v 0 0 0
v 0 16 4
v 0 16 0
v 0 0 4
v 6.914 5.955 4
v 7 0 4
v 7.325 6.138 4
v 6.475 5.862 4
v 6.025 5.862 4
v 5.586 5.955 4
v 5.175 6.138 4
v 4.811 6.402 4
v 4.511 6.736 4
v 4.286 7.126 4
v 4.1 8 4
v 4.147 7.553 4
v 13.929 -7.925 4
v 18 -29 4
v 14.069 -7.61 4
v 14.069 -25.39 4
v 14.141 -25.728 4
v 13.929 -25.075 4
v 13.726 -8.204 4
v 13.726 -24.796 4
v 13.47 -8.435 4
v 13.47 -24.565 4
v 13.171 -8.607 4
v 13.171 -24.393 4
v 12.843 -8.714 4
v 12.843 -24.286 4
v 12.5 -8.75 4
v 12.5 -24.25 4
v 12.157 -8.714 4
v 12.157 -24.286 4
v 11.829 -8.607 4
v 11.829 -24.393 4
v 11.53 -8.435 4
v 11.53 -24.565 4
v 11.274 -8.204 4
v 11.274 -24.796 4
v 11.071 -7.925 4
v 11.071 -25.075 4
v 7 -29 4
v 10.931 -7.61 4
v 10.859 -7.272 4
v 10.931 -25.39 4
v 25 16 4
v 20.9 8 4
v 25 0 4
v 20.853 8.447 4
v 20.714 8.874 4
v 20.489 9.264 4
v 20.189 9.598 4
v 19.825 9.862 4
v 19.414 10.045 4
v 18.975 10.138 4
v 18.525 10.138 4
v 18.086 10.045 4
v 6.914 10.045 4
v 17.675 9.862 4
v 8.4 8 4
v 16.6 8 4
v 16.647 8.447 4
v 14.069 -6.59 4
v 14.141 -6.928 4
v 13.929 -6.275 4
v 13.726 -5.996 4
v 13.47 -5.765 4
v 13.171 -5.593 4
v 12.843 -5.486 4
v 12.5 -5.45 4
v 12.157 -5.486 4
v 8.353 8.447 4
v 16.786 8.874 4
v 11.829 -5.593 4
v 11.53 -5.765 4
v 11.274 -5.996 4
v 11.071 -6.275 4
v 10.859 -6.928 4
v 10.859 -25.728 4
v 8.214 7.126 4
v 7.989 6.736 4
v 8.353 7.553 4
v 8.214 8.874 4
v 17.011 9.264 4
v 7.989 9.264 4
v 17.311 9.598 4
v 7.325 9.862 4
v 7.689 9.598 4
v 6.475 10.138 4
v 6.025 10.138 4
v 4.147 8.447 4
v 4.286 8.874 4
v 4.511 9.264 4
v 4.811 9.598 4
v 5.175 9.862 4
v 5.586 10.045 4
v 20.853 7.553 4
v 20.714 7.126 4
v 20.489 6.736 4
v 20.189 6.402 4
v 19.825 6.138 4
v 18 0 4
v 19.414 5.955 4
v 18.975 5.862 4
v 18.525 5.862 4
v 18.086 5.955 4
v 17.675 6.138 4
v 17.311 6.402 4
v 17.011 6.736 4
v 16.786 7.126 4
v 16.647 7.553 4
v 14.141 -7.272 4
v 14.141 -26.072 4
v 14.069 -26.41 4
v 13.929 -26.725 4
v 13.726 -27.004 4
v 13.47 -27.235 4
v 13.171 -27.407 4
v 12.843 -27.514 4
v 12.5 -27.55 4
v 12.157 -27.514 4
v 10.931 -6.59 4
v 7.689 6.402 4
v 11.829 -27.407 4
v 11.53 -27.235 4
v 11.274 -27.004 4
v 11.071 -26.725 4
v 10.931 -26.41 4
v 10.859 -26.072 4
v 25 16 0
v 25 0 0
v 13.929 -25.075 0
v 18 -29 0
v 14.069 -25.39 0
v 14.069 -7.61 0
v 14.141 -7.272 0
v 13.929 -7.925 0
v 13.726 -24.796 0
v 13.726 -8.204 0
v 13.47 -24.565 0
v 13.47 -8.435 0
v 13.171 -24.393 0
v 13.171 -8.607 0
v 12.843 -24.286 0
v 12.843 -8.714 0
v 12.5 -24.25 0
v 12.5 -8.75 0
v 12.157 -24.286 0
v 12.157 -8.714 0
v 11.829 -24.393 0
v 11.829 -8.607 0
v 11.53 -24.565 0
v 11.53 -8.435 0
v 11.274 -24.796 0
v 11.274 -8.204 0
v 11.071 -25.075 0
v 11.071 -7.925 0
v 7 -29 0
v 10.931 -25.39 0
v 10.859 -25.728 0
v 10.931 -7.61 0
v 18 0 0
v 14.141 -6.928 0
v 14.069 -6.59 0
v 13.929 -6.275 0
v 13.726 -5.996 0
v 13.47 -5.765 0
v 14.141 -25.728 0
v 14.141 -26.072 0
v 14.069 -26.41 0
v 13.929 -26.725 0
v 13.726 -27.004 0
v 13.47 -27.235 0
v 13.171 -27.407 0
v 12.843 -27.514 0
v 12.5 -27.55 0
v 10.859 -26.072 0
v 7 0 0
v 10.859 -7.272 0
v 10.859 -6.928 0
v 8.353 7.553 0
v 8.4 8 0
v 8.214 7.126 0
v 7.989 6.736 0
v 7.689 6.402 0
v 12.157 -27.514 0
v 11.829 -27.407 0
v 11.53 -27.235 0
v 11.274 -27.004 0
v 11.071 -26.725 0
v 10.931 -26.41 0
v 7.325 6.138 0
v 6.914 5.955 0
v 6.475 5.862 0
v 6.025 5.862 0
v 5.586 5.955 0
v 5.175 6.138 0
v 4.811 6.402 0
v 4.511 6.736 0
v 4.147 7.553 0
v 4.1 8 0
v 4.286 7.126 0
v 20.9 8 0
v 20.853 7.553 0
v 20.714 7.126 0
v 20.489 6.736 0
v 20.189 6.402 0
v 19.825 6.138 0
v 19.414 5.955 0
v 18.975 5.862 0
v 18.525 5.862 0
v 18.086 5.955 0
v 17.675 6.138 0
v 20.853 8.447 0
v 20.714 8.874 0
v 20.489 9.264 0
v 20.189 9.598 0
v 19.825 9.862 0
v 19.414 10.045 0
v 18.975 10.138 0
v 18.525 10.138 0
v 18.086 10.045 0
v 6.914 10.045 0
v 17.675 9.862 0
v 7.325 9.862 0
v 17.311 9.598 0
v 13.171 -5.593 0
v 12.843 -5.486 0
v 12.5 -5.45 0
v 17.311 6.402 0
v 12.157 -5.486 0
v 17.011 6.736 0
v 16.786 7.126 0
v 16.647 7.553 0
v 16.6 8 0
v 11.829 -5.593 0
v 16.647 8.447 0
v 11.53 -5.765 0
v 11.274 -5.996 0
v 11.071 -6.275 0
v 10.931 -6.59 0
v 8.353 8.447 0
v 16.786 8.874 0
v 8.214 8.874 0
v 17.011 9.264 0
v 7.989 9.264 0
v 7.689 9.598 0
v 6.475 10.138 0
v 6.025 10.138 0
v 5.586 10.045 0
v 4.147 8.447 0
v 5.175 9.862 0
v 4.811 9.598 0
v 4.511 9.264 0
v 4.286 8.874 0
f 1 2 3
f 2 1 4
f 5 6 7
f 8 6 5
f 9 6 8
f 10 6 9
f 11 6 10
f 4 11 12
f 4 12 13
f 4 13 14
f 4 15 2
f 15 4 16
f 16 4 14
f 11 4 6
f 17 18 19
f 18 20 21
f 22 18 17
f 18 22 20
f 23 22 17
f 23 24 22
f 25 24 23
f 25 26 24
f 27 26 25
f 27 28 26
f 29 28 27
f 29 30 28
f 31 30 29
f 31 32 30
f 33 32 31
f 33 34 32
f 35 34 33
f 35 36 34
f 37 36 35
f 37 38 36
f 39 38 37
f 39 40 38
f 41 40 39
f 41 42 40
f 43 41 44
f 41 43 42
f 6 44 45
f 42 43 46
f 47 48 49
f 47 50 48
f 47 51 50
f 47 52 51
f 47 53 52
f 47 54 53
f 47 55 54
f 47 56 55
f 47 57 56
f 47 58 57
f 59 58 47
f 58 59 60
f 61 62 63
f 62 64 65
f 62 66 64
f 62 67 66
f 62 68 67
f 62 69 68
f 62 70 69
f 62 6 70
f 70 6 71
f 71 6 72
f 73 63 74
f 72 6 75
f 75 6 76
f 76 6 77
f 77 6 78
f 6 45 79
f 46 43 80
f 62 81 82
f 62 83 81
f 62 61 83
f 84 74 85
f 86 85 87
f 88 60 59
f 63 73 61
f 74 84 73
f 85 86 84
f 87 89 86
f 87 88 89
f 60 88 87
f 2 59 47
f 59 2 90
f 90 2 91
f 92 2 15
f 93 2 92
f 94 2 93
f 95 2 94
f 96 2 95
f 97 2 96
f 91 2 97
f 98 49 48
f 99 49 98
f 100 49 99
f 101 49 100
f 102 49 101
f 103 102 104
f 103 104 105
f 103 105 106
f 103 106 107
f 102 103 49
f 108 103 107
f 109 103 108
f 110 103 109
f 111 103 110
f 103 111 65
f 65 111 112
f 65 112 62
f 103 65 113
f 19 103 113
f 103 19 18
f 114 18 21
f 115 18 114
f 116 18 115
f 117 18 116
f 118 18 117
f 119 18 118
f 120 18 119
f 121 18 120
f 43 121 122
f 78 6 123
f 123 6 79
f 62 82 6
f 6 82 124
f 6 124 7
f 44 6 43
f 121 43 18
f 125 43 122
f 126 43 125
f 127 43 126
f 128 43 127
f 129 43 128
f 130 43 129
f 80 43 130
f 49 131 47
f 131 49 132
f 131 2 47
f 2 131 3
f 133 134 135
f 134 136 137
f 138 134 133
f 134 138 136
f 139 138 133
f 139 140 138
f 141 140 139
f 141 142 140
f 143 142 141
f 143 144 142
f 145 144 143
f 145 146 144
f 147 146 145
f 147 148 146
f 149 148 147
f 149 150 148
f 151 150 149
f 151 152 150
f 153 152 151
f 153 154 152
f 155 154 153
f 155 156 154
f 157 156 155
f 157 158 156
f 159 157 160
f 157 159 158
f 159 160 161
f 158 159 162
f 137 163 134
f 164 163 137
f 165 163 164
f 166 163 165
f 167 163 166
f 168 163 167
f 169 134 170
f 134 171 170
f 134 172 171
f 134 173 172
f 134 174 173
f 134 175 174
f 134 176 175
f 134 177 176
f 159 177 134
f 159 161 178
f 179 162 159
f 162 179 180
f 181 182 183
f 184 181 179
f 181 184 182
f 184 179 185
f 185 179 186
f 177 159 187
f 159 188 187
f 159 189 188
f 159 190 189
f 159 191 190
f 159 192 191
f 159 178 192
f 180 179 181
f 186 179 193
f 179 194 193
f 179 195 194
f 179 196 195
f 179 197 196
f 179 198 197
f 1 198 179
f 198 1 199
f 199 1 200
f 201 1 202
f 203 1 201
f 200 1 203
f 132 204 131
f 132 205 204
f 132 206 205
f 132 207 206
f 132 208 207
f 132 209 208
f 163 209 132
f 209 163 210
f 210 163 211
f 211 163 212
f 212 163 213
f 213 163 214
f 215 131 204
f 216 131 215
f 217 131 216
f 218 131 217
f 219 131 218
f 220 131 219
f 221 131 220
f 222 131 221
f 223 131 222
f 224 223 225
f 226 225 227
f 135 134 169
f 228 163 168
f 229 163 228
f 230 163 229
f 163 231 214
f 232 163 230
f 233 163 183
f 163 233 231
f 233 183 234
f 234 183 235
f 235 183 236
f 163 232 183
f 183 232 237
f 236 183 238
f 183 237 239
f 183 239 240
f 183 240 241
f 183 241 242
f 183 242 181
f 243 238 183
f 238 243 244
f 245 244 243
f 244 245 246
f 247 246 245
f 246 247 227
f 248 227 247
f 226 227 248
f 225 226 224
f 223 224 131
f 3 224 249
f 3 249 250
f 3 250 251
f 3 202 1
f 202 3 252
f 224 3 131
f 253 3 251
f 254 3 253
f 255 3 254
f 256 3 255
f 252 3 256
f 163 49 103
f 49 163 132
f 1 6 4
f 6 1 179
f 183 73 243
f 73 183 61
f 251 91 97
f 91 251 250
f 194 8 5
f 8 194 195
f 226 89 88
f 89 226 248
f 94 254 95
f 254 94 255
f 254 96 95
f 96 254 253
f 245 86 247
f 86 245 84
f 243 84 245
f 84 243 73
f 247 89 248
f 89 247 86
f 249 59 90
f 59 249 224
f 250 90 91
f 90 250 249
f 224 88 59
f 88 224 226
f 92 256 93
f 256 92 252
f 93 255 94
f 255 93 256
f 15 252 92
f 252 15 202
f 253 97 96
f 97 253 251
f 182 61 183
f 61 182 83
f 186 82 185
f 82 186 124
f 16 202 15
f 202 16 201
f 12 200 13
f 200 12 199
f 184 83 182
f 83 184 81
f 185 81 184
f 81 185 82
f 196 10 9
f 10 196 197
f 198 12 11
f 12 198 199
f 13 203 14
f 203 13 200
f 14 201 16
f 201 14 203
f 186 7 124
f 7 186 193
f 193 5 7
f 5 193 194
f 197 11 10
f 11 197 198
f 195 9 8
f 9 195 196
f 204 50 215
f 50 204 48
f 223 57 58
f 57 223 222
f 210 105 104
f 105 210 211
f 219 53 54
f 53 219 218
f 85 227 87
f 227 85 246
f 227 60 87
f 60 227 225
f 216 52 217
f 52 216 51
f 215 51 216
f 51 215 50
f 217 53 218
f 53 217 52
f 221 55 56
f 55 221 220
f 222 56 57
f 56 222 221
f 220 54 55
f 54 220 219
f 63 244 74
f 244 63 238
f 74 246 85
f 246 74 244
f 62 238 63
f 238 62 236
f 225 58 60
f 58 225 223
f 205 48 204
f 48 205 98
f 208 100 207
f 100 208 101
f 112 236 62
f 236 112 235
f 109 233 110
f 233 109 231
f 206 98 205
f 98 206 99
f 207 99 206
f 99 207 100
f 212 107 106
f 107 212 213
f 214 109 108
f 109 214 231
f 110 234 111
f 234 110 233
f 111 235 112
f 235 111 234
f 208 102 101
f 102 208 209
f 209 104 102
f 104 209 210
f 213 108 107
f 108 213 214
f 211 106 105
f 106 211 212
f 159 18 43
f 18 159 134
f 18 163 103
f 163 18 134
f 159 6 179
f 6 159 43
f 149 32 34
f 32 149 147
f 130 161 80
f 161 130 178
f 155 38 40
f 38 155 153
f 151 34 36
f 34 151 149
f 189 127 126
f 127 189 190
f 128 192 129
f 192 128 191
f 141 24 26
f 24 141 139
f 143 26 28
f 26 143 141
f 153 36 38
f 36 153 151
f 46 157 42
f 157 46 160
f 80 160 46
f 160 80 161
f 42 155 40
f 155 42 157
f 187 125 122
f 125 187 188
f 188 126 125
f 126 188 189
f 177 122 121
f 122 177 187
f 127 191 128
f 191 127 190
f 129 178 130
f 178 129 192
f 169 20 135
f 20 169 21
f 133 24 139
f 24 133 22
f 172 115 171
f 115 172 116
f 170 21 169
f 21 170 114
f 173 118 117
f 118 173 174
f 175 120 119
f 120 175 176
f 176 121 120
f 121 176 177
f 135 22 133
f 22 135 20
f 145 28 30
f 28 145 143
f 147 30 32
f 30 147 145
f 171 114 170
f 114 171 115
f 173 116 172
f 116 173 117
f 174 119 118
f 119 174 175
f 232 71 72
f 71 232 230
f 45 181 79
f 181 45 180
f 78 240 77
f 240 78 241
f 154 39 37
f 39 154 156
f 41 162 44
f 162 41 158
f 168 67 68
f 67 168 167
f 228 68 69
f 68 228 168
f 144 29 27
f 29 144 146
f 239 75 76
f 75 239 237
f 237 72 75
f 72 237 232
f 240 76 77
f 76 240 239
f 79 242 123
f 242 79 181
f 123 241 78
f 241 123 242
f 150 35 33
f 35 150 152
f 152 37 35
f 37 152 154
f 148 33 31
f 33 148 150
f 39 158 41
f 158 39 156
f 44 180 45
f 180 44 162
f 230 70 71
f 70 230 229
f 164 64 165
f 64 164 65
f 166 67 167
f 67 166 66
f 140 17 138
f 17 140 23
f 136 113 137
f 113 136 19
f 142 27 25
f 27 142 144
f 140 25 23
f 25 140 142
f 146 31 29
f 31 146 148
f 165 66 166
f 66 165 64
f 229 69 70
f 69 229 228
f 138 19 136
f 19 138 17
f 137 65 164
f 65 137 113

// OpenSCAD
WallThickness = 4;

BaseWidth = 25;
BaseDepth = 16;
BaseHoleDiameter = 4.3;

SensorToBaseDistance = 4;

SensorHoleDistance = 18.8;
SensorHoleDiameter = 3.3;
SensorWidth = 25;
SensorDepth = 11;


difference() {
    cube(size=[BaseWidth, BaseDepth, WallThickness], center=false);

    translate([BaseWidth/4, BaseDepth/2, 0])
    cylinder(h=WallThickness, d=BaseHoleDiameter, center=false, $fn=30);


    translate([BaseWidth/4*3, BaseDepth/2, 0])
    cylinder(h=WallThickness, d=BaseHoleDiameter, center=false, $fn=30);
    
}


translate([BaseWidth/2+SensorDepth/2, -SensorWidth-SensorToBaseDistance, 0])
rotate([0, 0, 90])
difference() {
    cube(size=[SensorWidth, SensorDepth, WallThickness], center=false);
    translate([(SensorWidth-SensorHoleDistance)/2, SensorDepth/2, 0])
    cylinder(h=WallThickness, d=SensorHoleDiameter, center=false, $fn=30);
    translate([(SensorWidth-SensorHoleDistance)/2+SensorHoleDistance, SensorDepth/2, 0])
    cylinder(h=WallThickness, d=SensorHoleDiameter, center=false, $fn=30);
}

translate([BaseWidth/2-SensorDepth/2, -SensorToBaseDistance, 0])
cube([SensorDepth, SensorToBaseDistance, WallThickness]);
